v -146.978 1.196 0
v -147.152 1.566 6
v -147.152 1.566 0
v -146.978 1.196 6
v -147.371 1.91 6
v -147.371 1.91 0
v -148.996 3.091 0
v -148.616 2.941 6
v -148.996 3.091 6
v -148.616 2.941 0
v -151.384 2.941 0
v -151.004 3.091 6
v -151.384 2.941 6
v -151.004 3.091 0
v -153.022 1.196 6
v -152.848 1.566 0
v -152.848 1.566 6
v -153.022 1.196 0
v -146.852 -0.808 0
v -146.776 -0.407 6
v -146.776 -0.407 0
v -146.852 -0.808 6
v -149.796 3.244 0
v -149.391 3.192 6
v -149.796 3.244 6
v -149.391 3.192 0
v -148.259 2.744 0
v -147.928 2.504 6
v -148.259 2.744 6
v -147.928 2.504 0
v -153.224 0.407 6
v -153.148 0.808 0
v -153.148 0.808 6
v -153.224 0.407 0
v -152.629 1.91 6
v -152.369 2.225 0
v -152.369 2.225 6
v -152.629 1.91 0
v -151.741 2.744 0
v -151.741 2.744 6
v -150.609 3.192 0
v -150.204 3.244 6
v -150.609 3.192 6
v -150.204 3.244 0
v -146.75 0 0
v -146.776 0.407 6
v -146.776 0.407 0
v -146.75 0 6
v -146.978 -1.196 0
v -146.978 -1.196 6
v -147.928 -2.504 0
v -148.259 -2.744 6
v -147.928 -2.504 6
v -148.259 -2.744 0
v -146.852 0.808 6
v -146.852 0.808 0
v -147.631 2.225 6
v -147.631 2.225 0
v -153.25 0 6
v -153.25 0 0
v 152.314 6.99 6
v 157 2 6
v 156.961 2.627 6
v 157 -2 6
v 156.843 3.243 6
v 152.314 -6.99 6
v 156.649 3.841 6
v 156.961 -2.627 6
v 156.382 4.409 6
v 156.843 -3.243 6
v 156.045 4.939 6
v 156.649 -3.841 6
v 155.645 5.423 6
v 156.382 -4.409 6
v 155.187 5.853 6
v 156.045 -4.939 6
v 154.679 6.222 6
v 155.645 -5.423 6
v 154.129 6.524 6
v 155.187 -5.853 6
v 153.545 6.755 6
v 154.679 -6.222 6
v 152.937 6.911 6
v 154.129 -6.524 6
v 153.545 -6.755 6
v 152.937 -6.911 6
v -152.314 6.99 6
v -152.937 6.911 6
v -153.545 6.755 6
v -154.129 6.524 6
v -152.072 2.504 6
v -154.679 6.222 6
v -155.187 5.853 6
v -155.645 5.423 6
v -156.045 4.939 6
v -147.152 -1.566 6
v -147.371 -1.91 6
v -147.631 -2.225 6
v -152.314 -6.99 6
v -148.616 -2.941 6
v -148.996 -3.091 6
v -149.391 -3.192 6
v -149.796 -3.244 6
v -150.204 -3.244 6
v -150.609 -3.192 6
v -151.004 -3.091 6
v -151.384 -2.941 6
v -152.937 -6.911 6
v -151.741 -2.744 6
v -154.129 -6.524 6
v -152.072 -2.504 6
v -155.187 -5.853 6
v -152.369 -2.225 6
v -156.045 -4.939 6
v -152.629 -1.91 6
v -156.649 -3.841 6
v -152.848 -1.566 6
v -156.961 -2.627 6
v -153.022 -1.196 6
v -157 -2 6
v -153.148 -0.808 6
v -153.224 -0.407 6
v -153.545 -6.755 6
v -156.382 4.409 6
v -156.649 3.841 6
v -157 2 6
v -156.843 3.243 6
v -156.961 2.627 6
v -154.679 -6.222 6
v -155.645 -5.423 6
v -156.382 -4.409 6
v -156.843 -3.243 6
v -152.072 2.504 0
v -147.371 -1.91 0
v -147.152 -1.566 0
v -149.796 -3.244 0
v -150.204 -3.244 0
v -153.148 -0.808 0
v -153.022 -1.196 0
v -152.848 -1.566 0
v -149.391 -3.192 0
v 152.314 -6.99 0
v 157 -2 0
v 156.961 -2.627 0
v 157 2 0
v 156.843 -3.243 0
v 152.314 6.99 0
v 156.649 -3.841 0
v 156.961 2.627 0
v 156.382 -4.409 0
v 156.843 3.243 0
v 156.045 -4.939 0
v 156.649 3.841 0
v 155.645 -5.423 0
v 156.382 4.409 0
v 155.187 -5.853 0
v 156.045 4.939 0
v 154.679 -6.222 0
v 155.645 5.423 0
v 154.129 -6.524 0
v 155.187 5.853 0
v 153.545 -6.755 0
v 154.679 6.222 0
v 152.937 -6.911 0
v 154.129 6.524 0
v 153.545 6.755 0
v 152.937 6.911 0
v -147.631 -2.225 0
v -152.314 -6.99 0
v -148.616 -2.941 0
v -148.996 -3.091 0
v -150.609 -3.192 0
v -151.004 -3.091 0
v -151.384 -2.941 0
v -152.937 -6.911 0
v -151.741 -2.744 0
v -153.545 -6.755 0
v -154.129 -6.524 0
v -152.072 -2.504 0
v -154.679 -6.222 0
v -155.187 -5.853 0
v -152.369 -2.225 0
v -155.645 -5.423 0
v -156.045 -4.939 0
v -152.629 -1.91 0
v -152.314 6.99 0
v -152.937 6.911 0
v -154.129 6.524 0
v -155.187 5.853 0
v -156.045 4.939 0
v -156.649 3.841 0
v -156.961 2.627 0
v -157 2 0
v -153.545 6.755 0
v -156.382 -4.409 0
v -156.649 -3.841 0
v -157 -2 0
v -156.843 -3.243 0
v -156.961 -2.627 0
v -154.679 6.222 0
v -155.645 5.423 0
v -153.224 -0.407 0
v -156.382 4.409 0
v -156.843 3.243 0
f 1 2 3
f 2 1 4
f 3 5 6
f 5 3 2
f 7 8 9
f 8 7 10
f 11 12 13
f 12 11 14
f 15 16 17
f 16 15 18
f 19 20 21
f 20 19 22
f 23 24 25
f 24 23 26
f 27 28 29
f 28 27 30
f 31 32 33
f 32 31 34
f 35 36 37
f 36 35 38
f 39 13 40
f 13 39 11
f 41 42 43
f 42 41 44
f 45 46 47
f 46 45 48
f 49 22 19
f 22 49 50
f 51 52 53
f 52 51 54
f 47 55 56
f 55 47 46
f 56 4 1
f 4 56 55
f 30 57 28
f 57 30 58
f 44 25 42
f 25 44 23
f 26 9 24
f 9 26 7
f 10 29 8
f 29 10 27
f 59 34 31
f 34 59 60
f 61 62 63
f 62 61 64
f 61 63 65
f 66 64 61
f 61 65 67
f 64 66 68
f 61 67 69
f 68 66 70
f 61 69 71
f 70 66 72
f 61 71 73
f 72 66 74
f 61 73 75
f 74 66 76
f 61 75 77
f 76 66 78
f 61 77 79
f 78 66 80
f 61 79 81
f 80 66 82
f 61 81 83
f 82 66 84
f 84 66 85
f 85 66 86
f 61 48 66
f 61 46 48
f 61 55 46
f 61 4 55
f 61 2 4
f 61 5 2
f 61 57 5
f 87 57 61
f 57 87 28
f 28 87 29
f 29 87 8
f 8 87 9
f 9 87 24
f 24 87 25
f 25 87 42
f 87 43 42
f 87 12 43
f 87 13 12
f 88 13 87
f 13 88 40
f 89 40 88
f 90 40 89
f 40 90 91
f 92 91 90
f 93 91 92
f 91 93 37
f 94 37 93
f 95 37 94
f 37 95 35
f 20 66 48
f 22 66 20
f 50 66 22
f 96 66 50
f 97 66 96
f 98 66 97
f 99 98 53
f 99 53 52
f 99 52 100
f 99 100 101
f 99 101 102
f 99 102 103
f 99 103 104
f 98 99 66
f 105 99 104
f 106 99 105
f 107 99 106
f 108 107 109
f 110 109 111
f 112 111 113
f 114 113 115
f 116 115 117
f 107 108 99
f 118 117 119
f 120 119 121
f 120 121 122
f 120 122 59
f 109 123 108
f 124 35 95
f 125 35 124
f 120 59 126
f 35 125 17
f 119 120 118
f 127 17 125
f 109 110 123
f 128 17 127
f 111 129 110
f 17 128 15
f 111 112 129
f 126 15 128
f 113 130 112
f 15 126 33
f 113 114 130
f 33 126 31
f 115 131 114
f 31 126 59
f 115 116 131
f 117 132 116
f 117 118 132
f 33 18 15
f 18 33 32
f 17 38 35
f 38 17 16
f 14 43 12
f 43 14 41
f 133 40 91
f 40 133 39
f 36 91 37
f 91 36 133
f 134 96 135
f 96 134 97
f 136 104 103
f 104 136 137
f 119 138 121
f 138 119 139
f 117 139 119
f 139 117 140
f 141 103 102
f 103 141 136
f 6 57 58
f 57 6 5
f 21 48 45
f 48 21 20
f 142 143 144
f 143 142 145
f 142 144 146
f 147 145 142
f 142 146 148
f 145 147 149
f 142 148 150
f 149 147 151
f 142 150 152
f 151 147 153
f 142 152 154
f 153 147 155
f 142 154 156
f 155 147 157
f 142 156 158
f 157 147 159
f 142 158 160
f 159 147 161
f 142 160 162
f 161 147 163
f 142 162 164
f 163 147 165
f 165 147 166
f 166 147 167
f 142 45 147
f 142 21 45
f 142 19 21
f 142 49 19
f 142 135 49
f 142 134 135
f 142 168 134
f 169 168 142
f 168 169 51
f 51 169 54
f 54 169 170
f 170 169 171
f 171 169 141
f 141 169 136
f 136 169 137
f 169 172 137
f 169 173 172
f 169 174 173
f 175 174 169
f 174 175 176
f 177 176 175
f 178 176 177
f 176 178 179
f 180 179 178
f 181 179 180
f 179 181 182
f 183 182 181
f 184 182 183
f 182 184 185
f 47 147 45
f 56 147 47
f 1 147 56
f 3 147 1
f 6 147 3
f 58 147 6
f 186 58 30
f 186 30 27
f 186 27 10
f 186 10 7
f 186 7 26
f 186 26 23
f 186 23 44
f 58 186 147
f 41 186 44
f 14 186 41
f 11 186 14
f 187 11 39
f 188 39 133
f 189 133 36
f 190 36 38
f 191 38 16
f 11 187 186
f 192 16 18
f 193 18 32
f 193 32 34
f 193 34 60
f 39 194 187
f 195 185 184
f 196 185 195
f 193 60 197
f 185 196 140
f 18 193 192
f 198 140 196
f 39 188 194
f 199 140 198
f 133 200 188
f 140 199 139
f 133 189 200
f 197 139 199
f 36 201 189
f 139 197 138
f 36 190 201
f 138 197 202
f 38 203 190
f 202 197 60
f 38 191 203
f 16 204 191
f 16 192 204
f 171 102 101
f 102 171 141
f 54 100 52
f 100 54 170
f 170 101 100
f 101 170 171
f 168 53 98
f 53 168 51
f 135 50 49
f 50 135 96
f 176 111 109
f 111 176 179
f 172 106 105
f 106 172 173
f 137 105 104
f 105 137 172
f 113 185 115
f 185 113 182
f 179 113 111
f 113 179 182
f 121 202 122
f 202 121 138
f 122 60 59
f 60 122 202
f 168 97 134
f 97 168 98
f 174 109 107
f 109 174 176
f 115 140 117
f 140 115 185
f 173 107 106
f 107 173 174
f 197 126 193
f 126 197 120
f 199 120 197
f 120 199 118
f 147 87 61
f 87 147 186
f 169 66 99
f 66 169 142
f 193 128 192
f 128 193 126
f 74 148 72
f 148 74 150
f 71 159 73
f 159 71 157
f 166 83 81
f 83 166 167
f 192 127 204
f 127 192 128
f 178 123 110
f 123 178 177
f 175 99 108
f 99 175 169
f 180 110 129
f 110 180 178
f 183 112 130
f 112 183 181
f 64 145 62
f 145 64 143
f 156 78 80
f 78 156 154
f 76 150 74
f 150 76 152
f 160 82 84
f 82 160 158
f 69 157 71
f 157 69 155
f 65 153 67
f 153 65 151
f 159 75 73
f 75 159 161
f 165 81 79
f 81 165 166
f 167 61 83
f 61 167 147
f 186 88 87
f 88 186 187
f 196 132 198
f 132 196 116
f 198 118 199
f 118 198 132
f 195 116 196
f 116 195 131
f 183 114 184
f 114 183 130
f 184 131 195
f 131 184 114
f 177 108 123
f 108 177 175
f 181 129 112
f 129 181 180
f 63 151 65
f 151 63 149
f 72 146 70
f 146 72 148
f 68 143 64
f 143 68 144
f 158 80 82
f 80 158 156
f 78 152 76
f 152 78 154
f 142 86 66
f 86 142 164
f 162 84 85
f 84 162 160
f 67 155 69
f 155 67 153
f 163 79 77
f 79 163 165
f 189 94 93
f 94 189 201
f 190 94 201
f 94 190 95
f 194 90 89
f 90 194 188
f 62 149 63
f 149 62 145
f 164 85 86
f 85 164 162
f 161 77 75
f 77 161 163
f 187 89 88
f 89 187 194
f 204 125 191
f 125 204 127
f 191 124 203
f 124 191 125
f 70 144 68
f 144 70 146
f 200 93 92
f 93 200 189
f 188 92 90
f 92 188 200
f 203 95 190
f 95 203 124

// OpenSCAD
$fn = 50;


difference() {
	union() {
		hull() {
			translate(v = [-152.0000000000, 2.0000000000, 0]) {
				cylinder(h = 6, r = 5);
			}
			translate(v = [152.0000000000, 2.0000000000, 0]) {
				cylinder(h = 6, r = 5);
			}
			translate(v = [-152.0000000000, -2.0000000000, 0]) {
				cylinder(h = 6, r = 5);
			}
			translate(v = [152.0000000000, -2.0000000000, 0]) {
				cylinder(h = 6, r = 5);
			}
		}
	}
	union() {
		translate(v = [-150.0000000000, 0.0000000000, 0]) {
			cylinder(h = 6, r = 3.2500000000);
		}
		translate(v = [-150.0000000000, 0.0000000000, 0]) {
			cylinder(h = 6, r = 1.8000000000);
		}
		translate(v = [-150.0000000000, 0.0000000000, 0]) {
			cylinder(h = 6, r = 1.8000000000);
		}
		translate(v = [-150.0000000000, 0.0000000000, 0]) {
			cylinder(h = 6, r = 1.8000000000);
		}
	}
}
